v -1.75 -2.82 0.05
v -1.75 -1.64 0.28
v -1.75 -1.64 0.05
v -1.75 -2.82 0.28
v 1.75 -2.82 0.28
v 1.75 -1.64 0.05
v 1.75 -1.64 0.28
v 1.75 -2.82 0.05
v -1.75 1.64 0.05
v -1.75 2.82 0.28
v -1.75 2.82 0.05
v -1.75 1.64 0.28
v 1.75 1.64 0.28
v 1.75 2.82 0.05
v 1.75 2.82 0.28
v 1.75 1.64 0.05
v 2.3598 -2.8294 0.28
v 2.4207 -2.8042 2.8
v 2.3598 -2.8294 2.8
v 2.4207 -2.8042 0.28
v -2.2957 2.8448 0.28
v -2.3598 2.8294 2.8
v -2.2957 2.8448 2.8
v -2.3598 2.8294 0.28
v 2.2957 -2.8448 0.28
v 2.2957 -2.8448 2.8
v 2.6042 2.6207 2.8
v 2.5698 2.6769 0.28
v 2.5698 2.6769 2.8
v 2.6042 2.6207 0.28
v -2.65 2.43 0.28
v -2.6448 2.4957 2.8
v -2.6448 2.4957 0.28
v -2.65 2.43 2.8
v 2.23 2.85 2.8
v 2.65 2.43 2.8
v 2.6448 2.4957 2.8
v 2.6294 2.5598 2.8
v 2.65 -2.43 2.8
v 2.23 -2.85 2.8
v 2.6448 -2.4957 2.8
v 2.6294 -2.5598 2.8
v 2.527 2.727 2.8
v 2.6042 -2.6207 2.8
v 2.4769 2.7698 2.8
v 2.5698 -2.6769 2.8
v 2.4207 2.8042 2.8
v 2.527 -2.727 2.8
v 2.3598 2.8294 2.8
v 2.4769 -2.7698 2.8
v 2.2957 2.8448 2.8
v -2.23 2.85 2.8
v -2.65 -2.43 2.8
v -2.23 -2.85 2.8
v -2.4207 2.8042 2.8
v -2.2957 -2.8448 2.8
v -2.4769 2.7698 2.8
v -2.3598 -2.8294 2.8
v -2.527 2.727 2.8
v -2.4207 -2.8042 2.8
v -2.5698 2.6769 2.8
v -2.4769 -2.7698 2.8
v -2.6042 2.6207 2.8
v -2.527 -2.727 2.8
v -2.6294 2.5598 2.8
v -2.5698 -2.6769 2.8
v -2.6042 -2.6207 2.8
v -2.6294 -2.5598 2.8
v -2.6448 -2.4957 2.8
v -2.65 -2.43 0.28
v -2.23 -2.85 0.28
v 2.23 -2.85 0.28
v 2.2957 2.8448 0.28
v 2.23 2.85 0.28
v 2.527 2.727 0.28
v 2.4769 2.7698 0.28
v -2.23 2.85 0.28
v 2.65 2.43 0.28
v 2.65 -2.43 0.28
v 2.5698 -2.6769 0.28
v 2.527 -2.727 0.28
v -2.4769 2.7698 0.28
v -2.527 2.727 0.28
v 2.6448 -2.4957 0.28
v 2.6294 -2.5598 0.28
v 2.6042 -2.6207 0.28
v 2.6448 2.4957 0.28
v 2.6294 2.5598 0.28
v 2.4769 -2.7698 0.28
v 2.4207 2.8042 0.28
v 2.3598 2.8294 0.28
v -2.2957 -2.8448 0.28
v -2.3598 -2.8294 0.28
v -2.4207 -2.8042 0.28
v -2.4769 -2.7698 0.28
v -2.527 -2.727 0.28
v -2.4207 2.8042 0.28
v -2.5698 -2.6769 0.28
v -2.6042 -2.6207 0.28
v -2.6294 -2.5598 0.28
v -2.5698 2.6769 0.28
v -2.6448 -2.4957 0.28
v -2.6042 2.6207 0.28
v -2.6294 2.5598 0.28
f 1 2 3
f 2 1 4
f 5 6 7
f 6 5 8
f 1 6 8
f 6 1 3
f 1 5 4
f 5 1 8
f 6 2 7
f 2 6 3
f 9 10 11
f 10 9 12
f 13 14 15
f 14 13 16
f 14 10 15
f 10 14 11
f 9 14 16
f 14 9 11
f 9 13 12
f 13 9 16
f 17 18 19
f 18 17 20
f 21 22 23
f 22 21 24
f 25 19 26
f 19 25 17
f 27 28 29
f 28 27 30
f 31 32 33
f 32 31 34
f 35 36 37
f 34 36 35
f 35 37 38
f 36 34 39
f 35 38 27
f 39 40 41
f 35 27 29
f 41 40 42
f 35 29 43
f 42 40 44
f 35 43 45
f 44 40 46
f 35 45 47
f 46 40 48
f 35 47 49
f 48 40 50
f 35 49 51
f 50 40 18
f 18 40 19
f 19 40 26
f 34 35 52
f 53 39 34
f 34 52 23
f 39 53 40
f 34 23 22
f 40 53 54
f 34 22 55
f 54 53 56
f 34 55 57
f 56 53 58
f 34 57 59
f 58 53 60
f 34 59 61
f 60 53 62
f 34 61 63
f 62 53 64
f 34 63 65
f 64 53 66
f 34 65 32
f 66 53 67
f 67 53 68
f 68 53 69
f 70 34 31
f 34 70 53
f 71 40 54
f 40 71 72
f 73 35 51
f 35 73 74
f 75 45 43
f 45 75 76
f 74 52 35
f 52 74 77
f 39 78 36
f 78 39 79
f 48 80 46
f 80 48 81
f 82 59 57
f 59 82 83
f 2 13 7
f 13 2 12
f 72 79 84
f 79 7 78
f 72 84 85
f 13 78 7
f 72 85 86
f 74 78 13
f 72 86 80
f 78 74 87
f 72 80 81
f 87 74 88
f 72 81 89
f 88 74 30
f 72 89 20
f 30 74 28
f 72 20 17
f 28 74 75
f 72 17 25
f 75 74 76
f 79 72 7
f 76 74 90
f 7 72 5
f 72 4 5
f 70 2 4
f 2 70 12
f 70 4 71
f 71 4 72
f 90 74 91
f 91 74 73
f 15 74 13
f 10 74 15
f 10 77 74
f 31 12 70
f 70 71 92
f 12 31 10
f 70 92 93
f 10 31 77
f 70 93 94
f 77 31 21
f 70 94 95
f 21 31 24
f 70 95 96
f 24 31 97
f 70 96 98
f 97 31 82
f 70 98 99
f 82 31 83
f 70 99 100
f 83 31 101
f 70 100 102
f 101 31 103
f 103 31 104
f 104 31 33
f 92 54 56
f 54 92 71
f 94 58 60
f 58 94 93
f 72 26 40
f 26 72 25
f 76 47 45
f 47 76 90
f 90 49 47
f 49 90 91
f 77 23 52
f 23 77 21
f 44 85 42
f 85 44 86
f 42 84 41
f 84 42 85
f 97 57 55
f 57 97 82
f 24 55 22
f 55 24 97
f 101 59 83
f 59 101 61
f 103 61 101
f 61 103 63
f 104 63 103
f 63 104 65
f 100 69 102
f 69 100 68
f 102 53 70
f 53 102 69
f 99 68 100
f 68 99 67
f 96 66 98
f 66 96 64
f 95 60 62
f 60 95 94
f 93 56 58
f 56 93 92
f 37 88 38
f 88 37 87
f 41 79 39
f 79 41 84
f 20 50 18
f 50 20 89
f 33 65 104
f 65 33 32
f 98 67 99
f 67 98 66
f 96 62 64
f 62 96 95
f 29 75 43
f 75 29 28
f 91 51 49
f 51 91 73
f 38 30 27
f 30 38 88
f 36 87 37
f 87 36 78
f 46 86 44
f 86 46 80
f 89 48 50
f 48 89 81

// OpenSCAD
// Bourns SRP5030HMCT-150M shielded power inductor.
// Datasheet nominal body: 5.3 x 5.7 x 2.8 mm.
// Origin: footprint center, Z=0 at host-PCB top.

$fn = 40;

module rounded_prism(size_x, size_y, height, radius) {
    linear_extrude(height = height)
        offset(r = radius)
            square([size_x - 2 * radius, size_y - 2 * radius], center = true);
}

module srp5030() {
    // Thin terminal lands remain visible at the two pad ends.
    translate([-1.75, -2.82, 0.05]) cube([3.50, 1.18, 0.30]);
    translate([-1.75,  1.64, 0.05]) cube([3.50, 1.18, 0.30]);

    // Molded shielded body.
    translate([0, 0, 0.28]) rounded_prism(5.3, 5.7, 2.52, 0.42);
}

srp5030();
